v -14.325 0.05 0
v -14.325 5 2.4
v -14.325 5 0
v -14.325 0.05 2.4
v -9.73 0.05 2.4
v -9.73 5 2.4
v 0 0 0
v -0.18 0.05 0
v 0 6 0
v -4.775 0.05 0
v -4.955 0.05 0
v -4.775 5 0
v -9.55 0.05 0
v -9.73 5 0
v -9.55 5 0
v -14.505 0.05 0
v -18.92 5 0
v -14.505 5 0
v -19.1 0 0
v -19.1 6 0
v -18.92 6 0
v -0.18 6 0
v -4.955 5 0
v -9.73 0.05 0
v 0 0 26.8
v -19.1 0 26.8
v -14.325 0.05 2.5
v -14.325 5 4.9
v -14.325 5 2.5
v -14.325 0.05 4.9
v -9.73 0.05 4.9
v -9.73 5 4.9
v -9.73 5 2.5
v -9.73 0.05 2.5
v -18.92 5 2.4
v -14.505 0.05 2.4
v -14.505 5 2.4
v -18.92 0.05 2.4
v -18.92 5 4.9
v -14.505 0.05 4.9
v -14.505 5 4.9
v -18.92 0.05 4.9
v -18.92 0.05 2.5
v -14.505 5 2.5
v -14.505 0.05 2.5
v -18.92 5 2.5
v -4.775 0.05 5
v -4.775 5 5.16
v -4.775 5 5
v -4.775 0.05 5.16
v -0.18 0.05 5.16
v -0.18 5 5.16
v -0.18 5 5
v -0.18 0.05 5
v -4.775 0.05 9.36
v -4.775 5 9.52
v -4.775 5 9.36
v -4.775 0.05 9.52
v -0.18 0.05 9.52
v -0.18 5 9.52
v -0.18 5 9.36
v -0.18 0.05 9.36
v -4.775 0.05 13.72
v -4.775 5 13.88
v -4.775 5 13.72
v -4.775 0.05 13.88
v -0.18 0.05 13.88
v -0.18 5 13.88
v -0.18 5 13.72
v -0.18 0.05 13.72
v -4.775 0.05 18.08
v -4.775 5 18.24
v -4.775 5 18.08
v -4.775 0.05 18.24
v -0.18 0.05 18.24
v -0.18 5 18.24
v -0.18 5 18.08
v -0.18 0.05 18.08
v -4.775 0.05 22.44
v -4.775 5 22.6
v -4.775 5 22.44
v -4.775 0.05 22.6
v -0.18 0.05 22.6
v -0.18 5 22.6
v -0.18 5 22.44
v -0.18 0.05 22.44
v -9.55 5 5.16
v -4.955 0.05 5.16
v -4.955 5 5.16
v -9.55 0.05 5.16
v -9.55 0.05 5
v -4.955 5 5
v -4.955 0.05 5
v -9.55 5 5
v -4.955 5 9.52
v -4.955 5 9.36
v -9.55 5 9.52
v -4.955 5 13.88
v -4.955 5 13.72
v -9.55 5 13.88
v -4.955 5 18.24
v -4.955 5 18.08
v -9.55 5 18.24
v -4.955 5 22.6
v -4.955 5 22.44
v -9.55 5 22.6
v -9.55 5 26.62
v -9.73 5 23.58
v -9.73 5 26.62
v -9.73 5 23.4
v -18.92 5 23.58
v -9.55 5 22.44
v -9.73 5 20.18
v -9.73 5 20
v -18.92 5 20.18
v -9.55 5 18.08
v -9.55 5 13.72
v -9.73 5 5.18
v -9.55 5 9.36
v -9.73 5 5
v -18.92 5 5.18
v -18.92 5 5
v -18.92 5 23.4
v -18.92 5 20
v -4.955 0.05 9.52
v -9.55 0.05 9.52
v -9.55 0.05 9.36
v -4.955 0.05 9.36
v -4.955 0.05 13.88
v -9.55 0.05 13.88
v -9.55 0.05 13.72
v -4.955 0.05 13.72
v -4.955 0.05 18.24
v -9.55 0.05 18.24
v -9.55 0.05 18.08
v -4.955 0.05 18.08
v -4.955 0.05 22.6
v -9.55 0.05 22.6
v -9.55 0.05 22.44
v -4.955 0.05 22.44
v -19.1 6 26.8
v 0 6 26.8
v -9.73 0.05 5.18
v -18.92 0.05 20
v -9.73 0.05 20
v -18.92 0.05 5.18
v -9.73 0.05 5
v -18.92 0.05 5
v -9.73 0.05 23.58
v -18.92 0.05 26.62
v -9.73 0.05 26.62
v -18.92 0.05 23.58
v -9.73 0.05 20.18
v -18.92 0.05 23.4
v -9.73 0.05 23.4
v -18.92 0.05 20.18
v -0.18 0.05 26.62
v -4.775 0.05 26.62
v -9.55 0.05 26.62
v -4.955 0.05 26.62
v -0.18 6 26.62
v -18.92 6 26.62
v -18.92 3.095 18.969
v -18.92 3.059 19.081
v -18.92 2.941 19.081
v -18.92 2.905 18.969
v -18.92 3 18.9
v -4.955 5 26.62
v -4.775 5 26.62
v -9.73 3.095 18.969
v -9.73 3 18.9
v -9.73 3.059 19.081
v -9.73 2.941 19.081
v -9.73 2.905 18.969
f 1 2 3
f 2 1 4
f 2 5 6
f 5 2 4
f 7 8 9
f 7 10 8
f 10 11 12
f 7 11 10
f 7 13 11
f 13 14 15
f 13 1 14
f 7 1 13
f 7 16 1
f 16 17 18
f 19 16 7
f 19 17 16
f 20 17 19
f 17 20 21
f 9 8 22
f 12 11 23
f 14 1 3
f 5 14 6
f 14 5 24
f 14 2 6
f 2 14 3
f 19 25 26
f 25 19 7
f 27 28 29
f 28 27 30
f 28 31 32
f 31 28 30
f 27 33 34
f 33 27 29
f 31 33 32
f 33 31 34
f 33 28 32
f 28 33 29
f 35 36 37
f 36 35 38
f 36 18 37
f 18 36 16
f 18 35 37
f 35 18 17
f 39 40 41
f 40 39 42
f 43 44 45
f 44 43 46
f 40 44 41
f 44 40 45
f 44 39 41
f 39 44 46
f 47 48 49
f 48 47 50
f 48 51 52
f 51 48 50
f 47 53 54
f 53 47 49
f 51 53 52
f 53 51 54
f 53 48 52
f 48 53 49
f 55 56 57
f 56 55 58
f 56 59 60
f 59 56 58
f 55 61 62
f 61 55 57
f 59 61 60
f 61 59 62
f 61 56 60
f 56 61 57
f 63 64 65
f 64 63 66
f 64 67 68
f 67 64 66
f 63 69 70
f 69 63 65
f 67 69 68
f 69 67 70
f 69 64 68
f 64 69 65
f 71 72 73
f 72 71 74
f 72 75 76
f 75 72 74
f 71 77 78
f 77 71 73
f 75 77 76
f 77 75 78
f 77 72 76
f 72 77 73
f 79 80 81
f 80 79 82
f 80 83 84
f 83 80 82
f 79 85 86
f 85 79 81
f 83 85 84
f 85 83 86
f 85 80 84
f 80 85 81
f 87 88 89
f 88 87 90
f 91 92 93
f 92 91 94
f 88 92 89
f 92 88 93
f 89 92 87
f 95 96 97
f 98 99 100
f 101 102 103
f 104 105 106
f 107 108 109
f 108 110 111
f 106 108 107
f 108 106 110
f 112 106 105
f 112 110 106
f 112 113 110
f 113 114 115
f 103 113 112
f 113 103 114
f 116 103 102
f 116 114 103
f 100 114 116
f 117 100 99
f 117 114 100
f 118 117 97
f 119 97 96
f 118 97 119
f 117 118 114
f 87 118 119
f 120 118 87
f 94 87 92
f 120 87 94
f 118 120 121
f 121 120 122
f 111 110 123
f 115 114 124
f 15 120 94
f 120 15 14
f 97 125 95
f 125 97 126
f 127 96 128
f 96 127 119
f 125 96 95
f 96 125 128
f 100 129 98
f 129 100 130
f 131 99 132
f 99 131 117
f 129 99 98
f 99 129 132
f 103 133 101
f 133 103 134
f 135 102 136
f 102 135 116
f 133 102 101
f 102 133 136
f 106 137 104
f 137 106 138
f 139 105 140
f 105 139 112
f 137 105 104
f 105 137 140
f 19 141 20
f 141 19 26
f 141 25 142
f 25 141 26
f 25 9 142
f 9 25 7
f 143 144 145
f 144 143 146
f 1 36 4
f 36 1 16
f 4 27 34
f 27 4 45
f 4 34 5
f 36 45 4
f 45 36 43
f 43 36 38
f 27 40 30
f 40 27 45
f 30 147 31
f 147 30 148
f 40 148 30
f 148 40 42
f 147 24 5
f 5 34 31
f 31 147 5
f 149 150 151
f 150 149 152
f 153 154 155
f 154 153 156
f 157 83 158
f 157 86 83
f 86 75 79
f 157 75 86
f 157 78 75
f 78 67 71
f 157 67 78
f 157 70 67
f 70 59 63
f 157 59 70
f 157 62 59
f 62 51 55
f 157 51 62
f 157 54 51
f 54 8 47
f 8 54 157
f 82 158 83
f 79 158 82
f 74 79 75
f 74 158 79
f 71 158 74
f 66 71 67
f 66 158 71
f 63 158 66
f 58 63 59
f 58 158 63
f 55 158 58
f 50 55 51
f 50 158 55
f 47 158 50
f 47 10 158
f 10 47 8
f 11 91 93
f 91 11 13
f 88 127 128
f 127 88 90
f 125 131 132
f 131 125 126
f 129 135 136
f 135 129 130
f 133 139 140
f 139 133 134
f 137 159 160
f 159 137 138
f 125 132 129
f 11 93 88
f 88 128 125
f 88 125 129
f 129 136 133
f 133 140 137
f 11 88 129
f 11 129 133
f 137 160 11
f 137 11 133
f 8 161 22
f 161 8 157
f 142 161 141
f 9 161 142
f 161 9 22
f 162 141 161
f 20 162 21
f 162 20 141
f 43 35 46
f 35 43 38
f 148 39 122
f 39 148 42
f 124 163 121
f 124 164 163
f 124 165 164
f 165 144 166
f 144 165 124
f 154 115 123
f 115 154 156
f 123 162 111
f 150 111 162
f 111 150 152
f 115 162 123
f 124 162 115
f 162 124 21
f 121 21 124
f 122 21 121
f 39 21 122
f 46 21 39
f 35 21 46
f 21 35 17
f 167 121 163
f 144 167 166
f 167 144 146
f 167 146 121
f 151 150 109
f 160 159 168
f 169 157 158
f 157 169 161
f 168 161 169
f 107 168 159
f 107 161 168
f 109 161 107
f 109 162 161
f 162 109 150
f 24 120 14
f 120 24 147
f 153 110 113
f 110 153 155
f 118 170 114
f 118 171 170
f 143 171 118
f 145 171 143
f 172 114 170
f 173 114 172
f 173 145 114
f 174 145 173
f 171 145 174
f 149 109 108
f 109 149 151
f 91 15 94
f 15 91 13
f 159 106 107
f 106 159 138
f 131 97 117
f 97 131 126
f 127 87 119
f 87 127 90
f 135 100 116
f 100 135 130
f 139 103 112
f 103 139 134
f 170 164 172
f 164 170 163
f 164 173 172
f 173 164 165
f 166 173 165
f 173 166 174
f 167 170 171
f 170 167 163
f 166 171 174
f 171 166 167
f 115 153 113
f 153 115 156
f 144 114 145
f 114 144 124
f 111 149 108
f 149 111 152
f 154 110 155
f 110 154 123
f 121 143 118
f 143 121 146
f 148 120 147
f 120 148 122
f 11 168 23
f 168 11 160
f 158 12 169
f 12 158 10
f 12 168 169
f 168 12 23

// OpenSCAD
module drawer_column(num_drawers, drawer_width, height, drawer_depth, spacing) {
    drawer_height = height / num_drawers - spacing;
    for (i = [0 : num_drawers - 1]) {
        translate([0, 0, i * (drawer_height + spacing)]) {
            cube([drawer_width, drawer_depth, drawer_height]);
        }
    }
}

module szafa_przedpokoj() {
    grubosc_plyty = 0.18;

    szafa_w = 18.1 + 1.;
    szafa_h = 26.8;
    szafa_d = 6.;

    plecowka_d = 0.05;
    palak_h = 19.;
    nad_palakiem_z = 1.;
    drzwi_przsowne_d = 1.;
    inner_d = szafa_d - drzwi_przsowne_d;
    drawer_w = szafa_w / 4 - grubosc_plyty; // grubosc_plyty odjęta przy każdej szufladzie
    drawers_h = 5;
    scale([-1., 1., 1.]) {
        // plecówka
        cube([szafa_w, plecowka_d, szafa_h]);
        // lewa
        cube([grubosc_plyty, szafa_d, szafa_h]);
        // prawa
        translate([szafa_w - grubosc_plyty, 0, 0]) {
            cube([grubosc_plyty, szafa_d, szafa_h]);
        }
        // góra
        translate([0, 0, szafa_h - grubosc_plyty]) {
            cube([szafa_w, szafa_d, grubosc_plyty]);
        }
        // pionowy środek
        translate([szafa_w / 2, 0, 0]) {
            cube([grubosc_plyty, inner_d, szafa_h]);
        }
        // pałąk
        translate([szafa_w / 2, szafa_d / 2, palak_h]) {
            rotate([0, 90, 0]) {
                cylinder(h = szafa_w / 2, d1 = 0.2, d2 = 0.2, center = false);
            }
        }
        // półka nad pałąkiem
        translate([szafa_w / 2, 0., palak_h + nad_palakiem_z]) {
            cube([szafa_w / 2, inner_d, grubosc_plyty]);
        }
        // półka nad pałąkiem ii
        translate([szafa_w / 2, 0., (szafa_h - palak_h - nad_palakiem_z) / 2 + palak_h + nad_palakiem_z]) {
            cube([szafa_w / 2, inner_d, grubosc_plyty]);
        }
        // półka pod pałąkiem
        translate([szafa_w / 2, 0., drawers_h]) {
            cube([szafa_w / 2, inner_d, grubosc_plyty]);
        }
        // szuflady
        echo(str("szafa_w = ", szafa_w));
        for (i = [2 : 3]) {
            translate([grubosc_plyty + i * (grubosc_plyty + drawer_w), 0, 0]) {
                drawer_column(num_drawers = 2, drawer_width = drawer_w, height = drawers_h, drawer_depth = inner_d, spacing = 0.1);
            }
        }
        // półki
        for (i = [0 : 1]) {
            translate([grubosc_plyty + i * (grubosc_plyty + drawer_w), 0, drawers_h]) {
                // magic spacing to make it look like shelves
                drawer_column(num_drawers = 5, drawer_width = drawer_w, height = szafa_h - drawers_h, drawer_depth = inner_d, spacing = 4.2);
            }
        }
        // pionowy środek półek
        translate([szafa_w / 4, 0, 0]) {
            cube([grubosc_plyty, inner_d, szafa_h]);
        }
        translate([7 * szafa_w / 8, 1.2 * szafa_d, szafa_h / 2]) {
            rotate([0, 90, 0]) {
                scale([0.1, 0.1, 0.1]) {
                    text("przesuwne drzwi ↓");
                }
            }
        }
    }
}

szafa_przedpokoj();
